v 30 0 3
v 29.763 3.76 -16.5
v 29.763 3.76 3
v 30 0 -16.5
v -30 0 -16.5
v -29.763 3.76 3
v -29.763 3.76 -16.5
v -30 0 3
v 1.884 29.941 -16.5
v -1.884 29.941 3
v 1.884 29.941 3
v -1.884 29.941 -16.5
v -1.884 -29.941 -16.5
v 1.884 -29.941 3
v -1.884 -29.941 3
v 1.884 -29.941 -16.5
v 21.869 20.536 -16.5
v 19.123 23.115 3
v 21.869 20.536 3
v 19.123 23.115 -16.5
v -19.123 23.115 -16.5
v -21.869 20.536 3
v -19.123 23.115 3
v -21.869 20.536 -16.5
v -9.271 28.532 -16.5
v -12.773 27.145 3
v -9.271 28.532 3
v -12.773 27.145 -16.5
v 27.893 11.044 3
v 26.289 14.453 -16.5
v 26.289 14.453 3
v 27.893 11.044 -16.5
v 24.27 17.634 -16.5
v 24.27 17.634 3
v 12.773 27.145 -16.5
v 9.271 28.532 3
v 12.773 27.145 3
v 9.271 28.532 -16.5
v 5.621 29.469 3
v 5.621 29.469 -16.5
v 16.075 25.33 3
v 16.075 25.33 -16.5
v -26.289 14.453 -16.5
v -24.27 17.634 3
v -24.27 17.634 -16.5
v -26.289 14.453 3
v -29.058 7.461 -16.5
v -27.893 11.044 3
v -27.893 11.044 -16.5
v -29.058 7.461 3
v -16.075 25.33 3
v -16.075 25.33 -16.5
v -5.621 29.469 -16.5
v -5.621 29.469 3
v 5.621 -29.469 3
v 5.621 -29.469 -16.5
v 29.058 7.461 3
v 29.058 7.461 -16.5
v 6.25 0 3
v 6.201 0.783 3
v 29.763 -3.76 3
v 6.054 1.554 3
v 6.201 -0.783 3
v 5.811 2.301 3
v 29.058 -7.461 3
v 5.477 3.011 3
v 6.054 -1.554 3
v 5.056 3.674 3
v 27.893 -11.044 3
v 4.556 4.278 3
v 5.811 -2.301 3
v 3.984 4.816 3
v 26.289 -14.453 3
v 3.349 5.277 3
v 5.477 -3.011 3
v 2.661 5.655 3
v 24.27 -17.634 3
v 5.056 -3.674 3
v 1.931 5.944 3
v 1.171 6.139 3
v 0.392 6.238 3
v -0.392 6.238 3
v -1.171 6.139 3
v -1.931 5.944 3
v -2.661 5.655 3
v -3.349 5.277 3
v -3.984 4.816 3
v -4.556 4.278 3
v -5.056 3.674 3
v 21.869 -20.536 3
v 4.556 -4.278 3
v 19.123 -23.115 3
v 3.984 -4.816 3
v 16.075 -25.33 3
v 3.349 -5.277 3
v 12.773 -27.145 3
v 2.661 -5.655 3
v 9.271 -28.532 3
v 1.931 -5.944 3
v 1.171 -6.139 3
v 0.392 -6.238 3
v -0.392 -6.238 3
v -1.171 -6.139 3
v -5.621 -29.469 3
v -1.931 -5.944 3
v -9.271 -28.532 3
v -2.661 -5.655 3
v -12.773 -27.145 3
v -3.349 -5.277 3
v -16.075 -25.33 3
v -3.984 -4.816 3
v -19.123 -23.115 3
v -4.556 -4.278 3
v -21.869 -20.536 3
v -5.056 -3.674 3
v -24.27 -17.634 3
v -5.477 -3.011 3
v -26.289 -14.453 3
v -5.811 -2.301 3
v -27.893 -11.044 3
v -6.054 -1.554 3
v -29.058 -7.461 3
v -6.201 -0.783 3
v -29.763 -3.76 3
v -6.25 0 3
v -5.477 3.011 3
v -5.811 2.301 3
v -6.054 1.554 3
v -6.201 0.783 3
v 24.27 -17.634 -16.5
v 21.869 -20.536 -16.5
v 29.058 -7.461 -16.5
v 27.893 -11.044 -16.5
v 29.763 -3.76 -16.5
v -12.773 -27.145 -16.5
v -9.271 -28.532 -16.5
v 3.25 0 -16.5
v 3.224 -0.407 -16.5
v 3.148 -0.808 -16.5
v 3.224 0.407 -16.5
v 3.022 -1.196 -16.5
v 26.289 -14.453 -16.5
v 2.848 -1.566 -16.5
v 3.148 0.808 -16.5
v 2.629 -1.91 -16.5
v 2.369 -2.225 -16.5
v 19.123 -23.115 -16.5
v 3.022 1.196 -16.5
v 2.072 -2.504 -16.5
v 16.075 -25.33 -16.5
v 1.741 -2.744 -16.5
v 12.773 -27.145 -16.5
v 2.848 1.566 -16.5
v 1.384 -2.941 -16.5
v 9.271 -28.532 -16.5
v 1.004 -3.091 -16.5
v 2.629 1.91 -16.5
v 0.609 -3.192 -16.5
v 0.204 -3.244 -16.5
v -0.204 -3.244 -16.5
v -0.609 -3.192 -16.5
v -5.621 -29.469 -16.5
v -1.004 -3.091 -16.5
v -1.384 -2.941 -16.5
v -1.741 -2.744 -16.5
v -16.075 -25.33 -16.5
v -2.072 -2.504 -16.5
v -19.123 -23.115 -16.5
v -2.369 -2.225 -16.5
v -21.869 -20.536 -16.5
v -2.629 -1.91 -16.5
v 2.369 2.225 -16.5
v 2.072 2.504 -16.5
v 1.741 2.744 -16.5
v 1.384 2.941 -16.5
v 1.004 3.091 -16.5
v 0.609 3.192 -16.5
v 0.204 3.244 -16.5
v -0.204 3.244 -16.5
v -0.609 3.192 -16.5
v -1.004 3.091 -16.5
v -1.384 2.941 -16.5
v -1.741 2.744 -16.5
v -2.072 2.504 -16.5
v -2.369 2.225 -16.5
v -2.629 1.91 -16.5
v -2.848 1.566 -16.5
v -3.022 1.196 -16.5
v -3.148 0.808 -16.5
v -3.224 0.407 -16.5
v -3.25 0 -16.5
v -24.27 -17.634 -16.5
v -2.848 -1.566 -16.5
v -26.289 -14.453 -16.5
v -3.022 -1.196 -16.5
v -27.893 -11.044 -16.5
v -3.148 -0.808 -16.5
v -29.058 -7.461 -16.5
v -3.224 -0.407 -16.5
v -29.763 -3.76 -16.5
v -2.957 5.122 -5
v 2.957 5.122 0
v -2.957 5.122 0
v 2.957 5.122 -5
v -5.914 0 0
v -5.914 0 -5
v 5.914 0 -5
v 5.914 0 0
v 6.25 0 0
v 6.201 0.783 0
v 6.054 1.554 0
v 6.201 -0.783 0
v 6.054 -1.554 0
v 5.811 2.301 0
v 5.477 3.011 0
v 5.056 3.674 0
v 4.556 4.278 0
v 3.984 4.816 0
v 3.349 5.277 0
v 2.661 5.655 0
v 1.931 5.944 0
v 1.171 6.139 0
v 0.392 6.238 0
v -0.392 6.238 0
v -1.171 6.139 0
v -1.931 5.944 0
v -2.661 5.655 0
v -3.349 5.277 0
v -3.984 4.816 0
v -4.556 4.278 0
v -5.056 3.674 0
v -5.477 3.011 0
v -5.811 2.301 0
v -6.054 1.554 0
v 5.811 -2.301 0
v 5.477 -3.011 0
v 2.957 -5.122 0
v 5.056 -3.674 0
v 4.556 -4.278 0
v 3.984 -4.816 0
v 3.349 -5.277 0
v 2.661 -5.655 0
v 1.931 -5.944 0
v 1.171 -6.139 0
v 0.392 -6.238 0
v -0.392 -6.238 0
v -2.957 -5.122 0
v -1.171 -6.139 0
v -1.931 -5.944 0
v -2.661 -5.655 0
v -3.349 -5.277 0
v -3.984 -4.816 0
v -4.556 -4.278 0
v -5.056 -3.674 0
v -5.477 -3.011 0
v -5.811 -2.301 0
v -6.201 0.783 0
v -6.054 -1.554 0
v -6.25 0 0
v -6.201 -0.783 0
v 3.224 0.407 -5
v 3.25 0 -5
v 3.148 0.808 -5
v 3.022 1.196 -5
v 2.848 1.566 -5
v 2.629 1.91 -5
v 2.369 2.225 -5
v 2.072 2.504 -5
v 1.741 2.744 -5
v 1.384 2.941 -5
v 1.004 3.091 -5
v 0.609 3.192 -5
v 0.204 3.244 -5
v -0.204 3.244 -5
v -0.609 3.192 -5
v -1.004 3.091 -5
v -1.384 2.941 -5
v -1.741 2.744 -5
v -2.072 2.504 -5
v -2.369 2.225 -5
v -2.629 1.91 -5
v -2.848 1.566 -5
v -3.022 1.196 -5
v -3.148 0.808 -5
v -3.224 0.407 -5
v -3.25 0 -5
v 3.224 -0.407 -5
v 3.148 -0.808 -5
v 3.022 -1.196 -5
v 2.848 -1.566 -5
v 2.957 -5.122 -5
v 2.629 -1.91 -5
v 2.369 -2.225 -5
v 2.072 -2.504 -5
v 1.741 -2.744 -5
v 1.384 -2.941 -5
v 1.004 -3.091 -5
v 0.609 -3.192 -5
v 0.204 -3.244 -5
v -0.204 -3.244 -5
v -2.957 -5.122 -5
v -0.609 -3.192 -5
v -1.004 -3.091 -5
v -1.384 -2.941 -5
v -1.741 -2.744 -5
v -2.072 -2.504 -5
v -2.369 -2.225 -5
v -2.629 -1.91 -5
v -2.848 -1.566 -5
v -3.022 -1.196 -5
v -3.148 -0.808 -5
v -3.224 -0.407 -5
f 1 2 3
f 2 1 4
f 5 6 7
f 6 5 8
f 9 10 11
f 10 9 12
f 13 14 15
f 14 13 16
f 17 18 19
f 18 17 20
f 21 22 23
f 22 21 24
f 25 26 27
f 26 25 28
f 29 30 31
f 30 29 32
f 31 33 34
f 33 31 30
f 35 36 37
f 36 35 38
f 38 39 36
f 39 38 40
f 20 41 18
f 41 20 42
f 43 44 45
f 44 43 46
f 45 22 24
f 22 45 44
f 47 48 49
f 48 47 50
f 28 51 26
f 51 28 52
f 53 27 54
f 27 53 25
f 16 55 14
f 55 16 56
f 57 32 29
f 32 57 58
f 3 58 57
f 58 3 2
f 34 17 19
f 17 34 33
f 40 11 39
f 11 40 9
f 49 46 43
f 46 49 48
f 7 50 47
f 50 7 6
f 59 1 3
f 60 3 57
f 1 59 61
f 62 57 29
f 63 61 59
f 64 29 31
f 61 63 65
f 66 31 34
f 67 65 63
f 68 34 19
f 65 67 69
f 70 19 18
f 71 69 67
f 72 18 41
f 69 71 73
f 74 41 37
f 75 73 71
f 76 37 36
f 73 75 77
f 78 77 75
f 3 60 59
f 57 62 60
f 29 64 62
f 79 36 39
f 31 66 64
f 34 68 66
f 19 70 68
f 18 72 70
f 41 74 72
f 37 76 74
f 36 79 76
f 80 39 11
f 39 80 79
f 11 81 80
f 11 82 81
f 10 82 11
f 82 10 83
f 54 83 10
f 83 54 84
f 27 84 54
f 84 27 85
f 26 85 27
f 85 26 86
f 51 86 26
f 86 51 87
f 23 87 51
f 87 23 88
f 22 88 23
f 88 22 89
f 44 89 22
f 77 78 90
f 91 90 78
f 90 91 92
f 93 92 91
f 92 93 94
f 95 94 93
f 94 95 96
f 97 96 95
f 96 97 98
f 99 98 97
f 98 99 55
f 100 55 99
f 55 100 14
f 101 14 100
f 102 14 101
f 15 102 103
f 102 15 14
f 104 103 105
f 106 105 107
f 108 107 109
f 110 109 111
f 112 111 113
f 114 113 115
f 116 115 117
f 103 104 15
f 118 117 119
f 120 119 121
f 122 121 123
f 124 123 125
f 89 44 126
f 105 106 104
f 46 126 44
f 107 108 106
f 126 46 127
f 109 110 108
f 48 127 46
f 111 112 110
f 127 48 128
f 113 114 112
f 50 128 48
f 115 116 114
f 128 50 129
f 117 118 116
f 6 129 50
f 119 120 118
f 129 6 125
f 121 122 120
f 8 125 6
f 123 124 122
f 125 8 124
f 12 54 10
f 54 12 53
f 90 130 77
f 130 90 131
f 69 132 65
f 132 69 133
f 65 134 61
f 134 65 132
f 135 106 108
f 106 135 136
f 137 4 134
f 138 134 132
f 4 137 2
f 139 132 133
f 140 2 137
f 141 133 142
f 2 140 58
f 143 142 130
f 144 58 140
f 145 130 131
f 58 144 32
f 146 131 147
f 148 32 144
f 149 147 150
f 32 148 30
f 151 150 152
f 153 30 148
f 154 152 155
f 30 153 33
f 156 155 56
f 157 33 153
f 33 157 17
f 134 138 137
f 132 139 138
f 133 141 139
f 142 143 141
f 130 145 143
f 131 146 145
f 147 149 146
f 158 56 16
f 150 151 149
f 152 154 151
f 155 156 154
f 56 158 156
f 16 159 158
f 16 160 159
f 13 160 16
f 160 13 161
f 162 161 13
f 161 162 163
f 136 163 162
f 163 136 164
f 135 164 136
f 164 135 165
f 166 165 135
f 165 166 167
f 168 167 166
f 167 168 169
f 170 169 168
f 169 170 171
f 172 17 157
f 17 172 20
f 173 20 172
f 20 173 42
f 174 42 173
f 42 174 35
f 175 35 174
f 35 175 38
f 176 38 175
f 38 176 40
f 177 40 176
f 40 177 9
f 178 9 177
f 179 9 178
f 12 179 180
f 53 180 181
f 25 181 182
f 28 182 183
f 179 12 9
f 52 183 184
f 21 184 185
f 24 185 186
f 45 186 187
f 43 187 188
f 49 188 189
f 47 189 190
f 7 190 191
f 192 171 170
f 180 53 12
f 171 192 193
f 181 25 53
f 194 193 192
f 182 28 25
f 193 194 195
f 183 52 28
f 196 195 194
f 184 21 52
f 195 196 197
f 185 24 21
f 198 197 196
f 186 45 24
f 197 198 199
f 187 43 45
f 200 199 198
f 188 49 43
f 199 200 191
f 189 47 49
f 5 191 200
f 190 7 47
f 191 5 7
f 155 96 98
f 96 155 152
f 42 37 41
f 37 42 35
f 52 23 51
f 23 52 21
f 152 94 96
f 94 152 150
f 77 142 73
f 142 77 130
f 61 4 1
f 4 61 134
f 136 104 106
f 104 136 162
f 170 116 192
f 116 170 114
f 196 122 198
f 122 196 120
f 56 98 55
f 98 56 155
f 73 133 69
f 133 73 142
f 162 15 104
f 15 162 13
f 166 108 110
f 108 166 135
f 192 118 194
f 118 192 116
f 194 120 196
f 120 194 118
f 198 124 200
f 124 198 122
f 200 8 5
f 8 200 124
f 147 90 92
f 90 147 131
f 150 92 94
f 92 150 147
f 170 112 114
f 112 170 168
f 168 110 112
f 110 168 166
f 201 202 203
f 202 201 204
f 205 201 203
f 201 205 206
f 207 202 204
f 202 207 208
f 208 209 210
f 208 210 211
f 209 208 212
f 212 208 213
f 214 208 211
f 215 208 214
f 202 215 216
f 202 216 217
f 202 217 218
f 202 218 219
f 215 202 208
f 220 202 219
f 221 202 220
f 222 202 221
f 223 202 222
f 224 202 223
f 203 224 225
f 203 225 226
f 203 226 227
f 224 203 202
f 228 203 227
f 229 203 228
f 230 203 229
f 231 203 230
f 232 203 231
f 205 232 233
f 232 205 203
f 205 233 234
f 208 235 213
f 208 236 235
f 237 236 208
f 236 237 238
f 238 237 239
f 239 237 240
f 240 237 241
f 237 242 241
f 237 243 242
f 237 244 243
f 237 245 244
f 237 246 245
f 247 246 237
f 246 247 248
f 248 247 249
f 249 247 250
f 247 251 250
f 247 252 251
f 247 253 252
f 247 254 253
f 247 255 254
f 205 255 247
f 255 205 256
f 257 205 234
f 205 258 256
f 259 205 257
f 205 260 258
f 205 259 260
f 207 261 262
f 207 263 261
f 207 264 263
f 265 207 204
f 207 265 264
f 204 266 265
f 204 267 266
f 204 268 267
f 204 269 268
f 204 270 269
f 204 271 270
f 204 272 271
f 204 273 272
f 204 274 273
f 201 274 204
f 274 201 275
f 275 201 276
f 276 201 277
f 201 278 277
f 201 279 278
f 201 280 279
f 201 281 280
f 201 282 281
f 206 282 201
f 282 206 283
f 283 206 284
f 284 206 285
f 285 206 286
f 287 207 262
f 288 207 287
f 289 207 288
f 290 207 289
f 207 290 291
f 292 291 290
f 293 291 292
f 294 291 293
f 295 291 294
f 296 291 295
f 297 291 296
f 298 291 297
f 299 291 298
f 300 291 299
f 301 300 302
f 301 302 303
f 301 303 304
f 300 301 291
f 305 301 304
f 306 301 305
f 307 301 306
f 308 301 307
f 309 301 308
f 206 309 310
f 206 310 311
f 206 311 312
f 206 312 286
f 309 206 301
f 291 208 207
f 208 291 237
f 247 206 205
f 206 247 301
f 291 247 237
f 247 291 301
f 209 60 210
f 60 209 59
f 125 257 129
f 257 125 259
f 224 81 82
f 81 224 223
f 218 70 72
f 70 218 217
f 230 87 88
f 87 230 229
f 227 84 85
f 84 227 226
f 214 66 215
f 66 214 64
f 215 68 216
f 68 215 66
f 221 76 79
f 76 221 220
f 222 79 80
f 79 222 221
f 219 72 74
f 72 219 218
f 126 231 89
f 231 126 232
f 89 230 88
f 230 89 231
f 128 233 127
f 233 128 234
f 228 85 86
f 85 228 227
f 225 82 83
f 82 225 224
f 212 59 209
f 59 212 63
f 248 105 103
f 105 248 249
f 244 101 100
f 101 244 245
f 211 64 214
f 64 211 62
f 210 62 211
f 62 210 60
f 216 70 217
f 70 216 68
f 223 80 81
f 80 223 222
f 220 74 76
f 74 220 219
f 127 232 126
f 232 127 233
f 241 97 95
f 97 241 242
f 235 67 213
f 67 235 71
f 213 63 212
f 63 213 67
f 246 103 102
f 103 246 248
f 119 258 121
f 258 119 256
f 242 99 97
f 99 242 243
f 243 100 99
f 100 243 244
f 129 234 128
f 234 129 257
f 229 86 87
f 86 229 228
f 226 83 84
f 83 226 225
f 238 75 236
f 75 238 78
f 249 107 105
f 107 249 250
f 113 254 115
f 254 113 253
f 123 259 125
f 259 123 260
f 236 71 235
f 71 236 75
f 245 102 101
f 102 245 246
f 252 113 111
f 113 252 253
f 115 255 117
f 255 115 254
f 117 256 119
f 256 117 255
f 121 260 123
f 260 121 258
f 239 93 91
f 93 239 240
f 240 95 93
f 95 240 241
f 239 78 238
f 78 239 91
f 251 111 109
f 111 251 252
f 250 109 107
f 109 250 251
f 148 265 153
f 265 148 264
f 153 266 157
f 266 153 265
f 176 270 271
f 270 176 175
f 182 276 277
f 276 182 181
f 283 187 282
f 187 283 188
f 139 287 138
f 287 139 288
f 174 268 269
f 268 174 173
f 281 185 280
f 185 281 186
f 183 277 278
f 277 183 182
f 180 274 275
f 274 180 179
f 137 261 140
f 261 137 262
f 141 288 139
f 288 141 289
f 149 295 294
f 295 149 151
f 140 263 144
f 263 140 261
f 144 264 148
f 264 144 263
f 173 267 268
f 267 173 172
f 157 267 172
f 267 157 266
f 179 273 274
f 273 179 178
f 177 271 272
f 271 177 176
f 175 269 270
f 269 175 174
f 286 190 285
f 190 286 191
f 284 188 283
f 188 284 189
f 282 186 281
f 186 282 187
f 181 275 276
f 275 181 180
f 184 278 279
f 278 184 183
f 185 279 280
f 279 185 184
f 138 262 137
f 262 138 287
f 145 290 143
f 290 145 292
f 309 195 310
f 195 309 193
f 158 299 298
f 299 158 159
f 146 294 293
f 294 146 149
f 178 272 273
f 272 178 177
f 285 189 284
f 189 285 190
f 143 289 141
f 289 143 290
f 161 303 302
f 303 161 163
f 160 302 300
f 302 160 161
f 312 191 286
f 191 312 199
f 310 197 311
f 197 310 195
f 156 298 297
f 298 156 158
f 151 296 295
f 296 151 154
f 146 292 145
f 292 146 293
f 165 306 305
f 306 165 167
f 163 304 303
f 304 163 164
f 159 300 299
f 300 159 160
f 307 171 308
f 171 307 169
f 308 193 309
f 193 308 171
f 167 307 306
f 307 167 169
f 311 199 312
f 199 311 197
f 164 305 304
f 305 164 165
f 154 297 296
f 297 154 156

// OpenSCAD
$fn = 50;

difference() {
	union() {
		translate(v = [0, 0, -16.5]) {
			cylinder(h = 19.5, r = 30.0);
		}
		#translate(v = [0, 0, -18.0]) {
			cylinder(h = 18, r = 2.875);
		}
	}
	union() {
		translate(v = [0, 0, 0]) {
			rotate(a = [0, 0, 0]) {
				difference() {
					union() {
						translate(v = [0, 0, -5]) {
							linear_extrude(height = 5) {
								polygon(points = [[5.914249999999999, 0.0], [2.957125, 5.1218907443321156], [-2.9571249999999982, 5.1218907443321156], [-5.914249999999999, 7.242867331857232e-16], [-2.9571250000000022, -5.121890744332115], [2.9571249999999956, -5.121890744332118]]);
							}
						}
					}
					union();
				}
			}
		}
		#cylinder(h = 3, r = 6.25);
		#translate(v = [0, 0, -100.0]) {
			cylinder(h = 200, r = 3.25);
		}
	}
}
